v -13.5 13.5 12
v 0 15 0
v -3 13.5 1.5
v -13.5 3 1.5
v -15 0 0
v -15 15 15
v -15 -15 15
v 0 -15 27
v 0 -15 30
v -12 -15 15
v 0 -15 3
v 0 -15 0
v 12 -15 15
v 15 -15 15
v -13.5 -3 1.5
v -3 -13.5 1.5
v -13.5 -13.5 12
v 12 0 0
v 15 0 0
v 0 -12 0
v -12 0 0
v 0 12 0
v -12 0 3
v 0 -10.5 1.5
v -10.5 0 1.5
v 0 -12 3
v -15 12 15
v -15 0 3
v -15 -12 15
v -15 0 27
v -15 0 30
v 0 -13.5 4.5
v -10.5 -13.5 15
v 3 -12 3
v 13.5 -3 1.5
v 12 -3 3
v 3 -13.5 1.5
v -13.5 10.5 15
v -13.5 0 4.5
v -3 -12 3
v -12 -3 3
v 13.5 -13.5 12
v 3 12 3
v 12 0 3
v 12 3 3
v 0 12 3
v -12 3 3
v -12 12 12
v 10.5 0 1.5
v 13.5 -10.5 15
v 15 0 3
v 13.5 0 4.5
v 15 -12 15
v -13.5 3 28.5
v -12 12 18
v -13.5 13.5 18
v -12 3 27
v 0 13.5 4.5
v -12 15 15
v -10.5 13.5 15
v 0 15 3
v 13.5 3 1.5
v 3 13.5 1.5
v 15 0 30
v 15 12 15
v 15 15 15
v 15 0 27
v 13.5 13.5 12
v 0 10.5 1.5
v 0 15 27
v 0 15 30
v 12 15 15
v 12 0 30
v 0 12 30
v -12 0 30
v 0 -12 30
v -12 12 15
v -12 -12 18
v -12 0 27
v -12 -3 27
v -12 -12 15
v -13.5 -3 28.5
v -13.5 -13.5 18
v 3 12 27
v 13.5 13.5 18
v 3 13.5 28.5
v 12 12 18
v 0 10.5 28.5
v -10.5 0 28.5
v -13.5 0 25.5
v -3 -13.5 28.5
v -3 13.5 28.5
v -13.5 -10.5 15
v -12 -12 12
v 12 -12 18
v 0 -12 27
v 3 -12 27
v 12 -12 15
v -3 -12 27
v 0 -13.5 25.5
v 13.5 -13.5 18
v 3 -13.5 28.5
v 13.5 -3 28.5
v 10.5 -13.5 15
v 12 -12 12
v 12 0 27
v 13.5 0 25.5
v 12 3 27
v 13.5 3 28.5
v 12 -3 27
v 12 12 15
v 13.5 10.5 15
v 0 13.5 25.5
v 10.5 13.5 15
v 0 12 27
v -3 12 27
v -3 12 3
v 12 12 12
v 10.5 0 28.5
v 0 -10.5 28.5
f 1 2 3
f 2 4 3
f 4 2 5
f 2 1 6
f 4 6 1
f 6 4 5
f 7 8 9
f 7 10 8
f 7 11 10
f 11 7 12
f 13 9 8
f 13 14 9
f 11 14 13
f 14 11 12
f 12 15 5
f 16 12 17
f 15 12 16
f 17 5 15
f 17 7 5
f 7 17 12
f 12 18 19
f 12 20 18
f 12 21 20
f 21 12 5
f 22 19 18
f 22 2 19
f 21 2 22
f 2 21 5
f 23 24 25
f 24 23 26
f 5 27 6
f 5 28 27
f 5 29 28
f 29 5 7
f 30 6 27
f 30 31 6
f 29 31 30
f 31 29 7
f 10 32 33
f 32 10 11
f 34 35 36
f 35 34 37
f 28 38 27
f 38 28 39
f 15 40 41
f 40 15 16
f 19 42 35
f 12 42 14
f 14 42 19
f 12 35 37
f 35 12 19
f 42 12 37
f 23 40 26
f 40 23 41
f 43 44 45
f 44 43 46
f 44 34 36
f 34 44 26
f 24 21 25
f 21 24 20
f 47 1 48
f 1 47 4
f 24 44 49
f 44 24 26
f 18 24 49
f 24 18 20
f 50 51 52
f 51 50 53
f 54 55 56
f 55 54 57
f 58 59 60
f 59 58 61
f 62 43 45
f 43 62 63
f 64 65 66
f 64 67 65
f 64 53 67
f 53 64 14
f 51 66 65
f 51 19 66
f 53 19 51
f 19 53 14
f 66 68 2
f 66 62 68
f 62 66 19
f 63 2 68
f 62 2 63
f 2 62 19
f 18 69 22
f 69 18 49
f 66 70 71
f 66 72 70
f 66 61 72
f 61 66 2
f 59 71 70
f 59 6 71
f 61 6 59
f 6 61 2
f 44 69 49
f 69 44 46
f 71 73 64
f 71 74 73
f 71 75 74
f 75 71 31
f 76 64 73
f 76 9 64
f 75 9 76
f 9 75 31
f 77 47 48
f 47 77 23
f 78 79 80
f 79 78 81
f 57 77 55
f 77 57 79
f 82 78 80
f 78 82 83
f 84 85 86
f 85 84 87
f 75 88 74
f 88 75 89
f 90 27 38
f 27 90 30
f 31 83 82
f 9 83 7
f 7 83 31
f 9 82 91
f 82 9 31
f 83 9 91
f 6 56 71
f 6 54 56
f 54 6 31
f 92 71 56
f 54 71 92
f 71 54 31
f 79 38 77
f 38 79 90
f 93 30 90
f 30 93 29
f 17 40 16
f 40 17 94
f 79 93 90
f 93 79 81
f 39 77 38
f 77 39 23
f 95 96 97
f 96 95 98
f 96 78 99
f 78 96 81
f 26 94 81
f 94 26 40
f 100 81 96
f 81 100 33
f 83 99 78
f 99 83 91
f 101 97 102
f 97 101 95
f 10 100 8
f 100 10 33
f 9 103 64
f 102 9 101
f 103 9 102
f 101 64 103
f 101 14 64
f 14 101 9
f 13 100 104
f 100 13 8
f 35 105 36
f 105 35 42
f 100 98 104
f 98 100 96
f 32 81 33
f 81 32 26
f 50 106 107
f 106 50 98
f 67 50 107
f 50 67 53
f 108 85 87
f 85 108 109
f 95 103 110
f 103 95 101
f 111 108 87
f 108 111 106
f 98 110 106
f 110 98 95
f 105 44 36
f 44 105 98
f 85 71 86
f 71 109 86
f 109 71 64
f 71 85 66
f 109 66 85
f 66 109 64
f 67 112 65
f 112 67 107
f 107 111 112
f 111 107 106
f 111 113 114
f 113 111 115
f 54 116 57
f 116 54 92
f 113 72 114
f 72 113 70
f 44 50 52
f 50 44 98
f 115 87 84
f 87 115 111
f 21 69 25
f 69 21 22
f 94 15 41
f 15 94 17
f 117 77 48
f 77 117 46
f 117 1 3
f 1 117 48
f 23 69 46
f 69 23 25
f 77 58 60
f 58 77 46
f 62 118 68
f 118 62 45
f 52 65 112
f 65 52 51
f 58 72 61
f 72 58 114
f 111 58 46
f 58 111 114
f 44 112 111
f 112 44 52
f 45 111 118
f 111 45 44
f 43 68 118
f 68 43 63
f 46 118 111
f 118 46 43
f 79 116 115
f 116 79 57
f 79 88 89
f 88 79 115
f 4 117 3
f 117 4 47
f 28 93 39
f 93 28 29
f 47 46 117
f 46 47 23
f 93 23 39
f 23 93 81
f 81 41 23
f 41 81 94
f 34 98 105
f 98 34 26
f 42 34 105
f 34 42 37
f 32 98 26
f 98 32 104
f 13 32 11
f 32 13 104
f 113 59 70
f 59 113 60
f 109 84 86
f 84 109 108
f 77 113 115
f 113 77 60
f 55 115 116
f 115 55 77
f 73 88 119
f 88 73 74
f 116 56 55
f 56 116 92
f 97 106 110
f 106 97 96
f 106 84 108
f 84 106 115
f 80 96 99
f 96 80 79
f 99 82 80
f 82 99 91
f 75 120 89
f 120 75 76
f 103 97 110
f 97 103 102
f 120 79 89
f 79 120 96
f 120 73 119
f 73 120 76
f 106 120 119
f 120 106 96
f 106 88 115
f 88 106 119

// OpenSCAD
// shape height
sh = 30;
// border width
bw = 3;

include <../polyhedra.scad>;

poly_wire(cuboctahedron);
